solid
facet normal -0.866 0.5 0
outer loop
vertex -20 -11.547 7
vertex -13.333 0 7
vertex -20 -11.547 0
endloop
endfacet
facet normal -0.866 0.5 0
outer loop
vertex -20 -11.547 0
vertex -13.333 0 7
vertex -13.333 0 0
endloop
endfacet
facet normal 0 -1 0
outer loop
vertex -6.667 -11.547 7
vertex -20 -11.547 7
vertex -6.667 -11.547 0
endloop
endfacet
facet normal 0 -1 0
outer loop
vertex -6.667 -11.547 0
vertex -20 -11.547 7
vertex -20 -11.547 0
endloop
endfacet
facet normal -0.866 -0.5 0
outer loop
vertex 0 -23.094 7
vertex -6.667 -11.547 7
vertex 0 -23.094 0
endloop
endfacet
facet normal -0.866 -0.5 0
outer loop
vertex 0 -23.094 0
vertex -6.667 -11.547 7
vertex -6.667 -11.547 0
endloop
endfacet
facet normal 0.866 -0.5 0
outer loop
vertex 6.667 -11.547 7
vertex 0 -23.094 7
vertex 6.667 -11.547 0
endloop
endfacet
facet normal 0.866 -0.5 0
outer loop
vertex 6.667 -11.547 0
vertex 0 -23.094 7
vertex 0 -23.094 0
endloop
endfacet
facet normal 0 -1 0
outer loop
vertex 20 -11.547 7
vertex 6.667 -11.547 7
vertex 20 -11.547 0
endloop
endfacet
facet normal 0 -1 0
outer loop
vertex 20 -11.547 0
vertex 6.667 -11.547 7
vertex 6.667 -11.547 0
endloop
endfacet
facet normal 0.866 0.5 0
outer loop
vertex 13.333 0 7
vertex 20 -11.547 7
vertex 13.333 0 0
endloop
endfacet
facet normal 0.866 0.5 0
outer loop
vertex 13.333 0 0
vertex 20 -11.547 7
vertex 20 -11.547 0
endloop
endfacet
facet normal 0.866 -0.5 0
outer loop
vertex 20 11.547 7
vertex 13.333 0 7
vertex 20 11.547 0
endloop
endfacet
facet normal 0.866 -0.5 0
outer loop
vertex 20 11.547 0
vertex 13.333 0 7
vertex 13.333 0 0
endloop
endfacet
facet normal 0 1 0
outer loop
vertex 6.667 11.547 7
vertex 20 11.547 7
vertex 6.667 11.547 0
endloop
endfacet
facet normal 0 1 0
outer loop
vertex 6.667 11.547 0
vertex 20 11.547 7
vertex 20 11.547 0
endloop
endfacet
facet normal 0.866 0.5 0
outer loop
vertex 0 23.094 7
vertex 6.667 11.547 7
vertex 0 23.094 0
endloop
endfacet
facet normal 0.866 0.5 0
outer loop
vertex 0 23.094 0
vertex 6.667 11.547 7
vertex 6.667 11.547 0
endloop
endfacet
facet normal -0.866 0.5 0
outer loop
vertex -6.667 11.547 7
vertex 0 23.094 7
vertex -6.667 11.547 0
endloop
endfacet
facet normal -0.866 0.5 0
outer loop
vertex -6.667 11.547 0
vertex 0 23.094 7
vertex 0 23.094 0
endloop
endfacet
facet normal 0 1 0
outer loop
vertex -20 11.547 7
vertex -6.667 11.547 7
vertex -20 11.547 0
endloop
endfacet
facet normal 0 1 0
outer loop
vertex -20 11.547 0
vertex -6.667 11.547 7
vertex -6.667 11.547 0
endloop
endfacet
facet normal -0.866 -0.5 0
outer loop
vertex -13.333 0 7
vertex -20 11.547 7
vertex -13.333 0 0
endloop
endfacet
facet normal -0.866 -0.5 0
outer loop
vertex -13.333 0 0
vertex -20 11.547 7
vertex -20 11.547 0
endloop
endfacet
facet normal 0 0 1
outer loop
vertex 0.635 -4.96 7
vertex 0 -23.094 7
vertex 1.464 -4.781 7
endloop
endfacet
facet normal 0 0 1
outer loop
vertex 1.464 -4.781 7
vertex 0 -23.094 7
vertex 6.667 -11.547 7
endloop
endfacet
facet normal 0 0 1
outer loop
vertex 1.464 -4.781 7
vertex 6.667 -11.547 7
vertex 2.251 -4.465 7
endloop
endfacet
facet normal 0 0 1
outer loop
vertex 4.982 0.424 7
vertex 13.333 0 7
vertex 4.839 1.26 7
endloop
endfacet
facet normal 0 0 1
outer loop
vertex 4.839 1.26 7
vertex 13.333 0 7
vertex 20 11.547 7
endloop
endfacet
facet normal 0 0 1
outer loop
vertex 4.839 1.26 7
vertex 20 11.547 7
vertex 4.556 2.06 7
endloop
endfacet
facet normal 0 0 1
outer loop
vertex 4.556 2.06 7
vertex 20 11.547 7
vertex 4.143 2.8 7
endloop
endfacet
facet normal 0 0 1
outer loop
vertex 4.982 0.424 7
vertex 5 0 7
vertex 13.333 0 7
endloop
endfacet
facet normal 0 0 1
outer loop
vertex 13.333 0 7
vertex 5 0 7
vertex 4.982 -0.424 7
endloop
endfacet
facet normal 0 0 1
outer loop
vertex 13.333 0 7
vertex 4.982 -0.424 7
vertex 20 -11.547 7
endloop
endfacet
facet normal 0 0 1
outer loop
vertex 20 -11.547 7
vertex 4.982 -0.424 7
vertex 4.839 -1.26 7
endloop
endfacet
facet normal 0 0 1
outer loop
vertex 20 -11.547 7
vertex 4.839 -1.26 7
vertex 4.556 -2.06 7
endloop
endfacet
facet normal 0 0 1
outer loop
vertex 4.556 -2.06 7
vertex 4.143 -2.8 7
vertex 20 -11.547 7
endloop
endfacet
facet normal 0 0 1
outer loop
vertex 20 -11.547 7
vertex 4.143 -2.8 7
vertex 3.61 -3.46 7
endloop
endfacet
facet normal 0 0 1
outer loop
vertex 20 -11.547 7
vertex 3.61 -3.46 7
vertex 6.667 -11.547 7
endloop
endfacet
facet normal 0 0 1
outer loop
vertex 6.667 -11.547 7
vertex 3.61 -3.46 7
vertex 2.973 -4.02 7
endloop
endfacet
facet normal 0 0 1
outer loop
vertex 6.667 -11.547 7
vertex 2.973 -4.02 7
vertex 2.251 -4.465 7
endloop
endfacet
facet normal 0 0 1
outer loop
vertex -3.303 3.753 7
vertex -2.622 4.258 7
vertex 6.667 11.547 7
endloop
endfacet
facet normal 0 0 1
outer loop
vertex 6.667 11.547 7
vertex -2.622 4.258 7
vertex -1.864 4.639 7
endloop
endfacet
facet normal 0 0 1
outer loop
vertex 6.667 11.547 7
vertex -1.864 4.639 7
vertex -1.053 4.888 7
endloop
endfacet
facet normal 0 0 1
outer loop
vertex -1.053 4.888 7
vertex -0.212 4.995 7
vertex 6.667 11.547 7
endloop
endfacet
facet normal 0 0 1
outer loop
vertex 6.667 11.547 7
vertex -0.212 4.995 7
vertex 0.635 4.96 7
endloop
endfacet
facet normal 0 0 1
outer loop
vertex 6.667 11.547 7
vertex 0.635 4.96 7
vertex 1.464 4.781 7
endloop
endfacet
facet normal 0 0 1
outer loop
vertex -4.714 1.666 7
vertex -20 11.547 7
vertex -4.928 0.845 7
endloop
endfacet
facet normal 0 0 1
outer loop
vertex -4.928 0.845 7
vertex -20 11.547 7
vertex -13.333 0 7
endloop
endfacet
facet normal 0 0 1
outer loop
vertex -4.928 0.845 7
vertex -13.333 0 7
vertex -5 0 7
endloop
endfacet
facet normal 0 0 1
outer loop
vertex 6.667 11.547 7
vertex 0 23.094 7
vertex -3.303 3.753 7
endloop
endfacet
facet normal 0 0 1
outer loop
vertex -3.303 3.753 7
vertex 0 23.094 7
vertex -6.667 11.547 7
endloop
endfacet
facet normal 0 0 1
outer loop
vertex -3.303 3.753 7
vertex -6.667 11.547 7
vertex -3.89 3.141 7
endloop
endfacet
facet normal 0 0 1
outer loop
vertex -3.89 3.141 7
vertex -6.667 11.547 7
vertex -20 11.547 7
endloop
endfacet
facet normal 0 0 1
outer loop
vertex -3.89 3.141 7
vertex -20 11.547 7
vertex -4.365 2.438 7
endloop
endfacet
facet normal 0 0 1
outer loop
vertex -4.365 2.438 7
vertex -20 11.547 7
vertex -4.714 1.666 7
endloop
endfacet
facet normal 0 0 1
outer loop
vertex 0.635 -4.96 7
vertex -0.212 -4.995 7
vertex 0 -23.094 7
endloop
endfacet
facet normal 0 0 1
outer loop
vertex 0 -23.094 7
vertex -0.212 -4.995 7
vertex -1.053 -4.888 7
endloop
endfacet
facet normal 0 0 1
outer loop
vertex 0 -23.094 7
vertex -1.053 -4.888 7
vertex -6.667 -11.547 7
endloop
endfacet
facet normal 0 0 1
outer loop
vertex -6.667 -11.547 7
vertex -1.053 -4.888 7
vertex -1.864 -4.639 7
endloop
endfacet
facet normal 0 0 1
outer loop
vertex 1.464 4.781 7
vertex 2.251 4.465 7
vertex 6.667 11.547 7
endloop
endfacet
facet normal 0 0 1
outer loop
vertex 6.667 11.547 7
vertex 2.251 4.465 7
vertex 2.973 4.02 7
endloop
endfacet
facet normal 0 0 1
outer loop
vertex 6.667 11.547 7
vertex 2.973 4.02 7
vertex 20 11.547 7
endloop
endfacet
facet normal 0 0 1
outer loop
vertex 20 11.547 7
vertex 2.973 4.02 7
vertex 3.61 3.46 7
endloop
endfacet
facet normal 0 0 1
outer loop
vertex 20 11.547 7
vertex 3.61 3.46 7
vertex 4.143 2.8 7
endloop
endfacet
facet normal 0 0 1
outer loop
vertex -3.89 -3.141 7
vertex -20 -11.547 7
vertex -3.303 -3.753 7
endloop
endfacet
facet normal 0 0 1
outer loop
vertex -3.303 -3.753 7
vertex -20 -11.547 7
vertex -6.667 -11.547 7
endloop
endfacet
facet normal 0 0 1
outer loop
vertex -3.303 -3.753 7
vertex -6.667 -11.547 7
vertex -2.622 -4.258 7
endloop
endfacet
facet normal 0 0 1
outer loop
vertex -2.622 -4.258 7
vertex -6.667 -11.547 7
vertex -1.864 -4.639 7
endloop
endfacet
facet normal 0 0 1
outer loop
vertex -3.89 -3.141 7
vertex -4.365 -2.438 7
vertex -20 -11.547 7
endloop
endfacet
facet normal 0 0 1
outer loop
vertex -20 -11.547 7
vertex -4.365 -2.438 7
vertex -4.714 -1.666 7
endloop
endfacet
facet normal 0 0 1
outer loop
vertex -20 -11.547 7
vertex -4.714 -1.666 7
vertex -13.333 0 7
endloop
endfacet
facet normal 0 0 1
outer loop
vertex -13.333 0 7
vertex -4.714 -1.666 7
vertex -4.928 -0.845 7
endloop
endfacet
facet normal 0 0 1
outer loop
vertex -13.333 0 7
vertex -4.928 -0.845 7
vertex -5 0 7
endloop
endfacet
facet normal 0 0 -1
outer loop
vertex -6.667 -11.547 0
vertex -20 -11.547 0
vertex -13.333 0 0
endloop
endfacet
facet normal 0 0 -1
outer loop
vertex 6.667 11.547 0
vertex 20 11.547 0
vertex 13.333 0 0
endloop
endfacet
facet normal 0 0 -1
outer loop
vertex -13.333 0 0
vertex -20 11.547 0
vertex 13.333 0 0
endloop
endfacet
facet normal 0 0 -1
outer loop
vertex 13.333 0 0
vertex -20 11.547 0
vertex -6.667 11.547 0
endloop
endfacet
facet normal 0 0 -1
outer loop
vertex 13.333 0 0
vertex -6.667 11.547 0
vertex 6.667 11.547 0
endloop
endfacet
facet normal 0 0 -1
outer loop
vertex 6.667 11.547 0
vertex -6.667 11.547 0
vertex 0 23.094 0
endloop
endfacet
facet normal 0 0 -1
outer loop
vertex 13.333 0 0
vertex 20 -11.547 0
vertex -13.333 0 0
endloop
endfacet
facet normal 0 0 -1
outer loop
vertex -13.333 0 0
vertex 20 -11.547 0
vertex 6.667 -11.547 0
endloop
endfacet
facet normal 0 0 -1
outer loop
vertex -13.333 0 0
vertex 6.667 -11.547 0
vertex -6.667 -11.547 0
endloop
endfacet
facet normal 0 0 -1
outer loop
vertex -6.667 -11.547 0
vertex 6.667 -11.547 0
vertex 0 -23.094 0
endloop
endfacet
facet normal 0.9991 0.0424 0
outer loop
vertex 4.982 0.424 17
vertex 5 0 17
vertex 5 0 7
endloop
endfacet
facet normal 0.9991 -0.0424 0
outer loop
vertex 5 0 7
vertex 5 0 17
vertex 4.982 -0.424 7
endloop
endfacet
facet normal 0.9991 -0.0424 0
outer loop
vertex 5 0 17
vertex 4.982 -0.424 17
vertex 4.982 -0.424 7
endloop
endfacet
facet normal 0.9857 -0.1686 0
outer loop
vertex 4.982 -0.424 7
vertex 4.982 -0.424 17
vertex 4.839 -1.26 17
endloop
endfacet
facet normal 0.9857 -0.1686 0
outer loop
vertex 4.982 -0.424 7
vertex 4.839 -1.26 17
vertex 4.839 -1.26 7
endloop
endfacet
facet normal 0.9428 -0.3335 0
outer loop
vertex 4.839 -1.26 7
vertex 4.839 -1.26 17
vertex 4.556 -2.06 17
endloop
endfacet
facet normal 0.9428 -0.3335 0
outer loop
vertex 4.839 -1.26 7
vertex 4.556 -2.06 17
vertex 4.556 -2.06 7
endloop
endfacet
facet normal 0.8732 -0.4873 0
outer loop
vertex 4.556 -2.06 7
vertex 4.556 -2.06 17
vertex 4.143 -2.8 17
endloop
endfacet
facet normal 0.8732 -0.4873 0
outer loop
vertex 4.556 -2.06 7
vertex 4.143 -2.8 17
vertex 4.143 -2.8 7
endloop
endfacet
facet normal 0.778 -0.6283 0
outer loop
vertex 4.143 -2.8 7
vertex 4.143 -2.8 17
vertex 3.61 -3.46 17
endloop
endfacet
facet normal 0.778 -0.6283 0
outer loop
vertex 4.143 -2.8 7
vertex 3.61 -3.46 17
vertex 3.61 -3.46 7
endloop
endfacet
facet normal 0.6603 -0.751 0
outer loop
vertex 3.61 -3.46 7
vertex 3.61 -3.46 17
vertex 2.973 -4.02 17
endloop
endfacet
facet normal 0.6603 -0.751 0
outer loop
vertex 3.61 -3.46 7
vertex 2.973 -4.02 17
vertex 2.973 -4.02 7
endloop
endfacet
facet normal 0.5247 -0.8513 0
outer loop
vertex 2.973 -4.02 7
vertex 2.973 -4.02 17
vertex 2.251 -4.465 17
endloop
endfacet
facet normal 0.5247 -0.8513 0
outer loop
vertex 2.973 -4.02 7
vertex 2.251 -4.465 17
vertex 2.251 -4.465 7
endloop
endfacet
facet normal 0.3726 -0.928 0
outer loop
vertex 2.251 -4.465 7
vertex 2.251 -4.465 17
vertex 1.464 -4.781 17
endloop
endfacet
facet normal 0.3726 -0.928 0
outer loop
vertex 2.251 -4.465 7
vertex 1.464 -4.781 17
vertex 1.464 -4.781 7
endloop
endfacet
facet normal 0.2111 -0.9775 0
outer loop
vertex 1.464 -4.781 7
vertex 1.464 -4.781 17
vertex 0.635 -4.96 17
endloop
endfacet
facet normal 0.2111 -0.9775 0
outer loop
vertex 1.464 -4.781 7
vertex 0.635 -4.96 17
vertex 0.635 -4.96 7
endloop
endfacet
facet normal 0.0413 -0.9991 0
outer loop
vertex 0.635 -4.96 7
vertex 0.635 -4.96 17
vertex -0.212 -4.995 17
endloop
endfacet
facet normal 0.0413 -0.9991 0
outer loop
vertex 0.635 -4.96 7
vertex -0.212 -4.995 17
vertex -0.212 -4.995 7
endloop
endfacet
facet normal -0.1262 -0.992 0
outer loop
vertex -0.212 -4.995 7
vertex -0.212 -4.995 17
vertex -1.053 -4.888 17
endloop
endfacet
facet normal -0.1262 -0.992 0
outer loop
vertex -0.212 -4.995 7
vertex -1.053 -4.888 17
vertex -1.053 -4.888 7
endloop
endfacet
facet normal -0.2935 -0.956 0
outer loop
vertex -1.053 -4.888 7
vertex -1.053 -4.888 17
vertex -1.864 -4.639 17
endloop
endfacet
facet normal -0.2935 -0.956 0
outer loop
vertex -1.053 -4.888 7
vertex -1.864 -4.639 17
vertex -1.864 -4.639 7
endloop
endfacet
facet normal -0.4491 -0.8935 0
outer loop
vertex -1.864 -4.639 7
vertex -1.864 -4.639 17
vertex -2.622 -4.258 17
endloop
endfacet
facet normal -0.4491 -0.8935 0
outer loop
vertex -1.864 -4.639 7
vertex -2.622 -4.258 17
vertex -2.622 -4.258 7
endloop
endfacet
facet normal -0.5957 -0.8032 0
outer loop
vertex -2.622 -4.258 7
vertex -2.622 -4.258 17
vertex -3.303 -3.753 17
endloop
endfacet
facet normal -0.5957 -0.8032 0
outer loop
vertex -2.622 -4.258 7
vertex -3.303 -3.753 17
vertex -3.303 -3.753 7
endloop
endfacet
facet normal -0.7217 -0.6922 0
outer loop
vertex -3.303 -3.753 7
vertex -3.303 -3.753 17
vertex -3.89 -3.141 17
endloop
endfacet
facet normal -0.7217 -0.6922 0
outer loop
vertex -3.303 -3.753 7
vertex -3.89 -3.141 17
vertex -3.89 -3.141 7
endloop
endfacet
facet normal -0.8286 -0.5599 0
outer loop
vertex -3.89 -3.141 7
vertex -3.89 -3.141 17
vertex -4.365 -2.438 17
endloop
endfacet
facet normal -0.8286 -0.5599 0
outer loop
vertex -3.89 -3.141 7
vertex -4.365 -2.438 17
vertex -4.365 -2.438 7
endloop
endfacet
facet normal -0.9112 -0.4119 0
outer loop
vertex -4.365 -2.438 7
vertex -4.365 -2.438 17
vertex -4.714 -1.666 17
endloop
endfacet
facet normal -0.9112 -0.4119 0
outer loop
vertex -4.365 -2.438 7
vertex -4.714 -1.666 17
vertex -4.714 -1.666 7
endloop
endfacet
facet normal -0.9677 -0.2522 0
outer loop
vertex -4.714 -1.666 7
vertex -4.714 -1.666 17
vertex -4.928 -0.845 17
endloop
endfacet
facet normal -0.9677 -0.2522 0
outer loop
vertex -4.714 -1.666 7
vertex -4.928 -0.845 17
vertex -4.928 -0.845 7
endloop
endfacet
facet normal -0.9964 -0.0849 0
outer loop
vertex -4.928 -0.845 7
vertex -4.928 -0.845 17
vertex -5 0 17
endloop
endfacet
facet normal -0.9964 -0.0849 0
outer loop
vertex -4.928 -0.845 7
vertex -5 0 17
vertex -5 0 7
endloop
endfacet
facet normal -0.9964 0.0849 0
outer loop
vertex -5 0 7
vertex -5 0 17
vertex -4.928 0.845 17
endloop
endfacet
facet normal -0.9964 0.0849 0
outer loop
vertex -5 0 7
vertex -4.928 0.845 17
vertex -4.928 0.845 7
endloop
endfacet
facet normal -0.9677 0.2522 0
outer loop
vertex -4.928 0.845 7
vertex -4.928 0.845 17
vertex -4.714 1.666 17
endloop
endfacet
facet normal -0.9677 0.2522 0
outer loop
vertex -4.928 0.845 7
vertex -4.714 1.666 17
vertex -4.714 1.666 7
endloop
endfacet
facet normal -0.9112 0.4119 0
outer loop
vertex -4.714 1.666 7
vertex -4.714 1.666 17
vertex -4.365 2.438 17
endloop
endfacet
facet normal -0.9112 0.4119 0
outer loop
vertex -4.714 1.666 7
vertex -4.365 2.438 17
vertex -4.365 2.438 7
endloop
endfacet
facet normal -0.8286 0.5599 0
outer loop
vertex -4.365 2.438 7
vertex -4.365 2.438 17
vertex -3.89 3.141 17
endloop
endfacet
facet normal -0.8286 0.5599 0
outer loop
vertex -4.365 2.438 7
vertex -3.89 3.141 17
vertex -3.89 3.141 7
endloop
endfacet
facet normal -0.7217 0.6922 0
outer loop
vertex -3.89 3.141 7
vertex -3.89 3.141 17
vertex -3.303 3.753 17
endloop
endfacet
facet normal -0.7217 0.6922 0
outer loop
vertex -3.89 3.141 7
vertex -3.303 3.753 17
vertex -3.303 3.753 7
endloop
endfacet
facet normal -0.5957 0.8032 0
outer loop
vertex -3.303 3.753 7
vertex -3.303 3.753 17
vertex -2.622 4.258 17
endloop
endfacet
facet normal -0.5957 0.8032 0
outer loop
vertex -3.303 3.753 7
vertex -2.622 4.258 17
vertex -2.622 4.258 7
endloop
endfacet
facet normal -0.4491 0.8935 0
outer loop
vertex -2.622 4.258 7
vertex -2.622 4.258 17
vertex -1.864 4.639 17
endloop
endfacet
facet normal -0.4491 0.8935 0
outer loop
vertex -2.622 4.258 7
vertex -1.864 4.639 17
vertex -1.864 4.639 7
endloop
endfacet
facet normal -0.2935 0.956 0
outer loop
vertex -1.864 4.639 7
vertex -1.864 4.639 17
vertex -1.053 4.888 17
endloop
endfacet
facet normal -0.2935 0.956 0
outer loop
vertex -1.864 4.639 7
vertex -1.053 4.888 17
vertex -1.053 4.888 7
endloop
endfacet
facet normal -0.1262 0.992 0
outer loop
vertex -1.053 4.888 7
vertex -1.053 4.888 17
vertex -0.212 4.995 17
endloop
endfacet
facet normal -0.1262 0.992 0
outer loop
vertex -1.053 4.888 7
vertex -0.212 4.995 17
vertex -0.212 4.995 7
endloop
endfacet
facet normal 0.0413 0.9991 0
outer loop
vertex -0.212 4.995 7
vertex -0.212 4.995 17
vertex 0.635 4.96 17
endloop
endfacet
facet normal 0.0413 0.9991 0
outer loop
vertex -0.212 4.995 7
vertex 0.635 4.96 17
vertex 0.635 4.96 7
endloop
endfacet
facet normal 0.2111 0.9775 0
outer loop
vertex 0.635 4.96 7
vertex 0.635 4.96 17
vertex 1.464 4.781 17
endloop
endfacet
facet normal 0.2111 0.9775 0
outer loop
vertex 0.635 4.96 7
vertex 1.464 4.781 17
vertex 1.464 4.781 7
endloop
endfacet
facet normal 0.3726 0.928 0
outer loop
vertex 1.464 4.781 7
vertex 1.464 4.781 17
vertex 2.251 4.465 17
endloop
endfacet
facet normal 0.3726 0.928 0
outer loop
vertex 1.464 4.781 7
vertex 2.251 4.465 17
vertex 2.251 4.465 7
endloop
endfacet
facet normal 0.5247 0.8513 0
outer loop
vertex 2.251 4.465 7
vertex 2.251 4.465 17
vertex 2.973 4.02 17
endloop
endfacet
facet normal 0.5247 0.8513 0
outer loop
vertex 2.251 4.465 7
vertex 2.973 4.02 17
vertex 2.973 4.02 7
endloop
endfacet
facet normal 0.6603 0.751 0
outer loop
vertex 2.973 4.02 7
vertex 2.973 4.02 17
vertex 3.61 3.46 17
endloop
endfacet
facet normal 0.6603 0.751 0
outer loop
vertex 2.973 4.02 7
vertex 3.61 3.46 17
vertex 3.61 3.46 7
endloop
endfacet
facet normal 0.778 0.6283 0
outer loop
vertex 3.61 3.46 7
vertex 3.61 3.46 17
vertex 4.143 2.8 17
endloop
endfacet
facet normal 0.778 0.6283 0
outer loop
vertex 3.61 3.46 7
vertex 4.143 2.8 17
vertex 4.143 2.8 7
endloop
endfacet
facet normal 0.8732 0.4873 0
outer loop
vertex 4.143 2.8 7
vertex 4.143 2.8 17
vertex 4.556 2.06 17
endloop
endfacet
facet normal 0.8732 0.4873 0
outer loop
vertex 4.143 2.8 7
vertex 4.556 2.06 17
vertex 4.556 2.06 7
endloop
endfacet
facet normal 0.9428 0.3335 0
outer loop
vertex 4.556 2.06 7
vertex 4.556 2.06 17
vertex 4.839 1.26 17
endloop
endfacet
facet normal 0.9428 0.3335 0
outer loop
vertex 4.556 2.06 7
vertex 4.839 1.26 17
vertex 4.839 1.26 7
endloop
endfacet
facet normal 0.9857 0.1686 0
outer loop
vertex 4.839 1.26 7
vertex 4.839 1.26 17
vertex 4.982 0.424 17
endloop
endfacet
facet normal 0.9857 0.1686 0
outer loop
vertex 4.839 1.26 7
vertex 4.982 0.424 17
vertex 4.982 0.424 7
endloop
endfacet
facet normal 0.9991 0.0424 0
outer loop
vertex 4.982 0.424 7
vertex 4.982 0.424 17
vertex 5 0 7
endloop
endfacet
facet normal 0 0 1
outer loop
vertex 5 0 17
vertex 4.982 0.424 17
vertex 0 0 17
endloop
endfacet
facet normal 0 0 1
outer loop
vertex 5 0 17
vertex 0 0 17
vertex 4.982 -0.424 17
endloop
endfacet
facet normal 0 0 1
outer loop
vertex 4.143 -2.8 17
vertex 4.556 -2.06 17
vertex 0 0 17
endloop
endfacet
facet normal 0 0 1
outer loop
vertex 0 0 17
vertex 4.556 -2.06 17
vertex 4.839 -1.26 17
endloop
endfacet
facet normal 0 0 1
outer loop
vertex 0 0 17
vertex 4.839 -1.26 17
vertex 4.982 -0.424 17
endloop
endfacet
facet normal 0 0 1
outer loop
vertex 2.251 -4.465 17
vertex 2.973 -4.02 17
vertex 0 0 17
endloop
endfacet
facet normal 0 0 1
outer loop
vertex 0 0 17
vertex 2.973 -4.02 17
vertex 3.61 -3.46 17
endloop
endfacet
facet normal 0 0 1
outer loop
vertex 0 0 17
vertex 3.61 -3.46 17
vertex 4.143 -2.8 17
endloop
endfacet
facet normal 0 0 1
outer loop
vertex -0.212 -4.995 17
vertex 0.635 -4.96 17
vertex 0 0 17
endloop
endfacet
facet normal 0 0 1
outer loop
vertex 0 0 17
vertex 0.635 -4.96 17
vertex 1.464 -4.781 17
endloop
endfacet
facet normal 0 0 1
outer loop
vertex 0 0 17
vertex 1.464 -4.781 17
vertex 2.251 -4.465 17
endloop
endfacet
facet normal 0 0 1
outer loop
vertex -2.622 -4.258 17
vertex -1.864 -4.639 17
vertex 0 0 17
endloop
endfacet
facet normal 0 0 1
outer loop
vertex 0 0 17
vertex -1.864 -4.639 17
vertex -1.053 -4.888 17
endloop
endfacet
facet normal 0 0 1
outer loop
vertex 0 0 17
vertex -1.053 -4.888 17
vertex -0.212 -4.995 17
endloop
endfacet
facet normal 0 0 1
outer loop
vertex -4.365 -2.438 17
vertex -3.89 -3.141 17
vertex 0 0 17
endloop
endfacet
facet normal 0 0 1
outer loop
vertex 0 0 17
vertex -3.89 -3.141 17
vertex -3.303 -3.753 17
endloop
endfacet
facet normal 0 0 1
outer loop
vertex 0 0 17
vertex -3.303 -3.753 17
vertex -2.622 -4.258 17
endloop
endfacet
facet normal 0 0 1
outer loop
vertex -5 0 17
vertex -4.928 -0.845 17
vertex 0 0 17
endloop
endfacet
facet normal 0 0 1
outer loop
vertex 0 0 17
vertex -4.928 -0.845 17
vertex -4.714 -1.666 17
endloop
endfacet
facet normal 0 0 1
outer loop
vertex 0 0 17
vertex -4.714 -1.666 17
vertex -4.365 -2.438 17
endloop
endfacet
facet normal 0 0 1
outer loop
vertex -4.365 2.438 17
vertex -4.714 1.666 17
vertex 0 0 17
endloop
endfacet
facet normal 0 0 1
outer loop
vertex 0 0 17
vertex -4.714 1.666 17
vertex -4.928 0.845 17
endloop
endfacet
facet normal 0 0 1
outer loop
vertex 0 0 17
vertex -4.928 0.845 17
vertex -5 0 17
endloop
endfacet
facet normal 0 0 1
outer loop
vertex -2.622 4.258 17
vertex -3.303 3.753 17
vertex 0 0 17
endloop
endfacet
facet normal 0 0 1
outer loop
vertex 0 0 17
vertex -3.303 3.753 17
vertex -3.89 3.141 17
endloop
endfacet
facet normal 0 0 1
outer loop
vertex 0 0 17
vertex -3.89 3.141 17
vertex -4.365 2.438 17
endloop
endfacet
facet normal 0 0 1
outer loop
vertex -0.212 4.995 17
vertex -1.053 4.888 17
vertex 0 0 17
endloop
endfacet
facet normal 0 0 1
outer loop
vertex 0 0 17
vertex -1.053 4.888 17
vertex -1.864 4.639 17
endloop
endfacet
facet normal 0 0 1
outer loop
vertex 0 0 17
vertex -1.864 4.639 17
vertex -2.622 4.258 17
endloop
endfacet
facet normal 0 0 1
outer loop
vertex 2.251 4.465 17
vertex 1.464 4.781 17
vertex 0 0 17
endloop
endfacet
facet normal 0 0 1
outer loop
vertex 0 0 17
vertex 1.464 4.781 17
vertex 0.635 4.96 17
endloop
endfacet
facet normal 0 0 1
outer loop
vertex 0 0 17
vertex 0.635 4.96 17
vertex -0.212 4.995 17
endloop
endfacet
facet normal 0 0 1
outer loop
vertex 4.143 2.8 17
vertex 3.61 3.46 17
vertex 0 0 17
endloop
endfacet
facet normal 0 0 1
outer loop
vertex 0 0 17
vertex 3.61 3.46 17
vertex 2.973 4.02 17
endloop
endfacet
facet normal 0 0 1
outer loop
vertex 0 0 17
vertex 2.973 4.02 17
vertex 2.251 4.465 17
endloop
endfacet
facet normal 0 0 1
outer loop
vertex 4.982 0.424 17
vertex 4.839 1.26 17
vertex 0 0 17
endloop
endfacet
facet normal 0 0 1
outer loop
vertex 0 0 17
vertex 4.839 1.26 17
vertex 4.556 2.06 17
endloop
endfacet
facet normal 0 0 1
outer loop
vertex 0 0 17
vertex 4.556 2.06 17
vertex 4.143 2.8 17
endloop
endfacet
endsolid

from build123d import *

# Parameters (mm, degrees)
BOSS_EXTRU_1_DEPTH = 7
ESQUISSE2_R        = 5
BOSS_EXTRU_2_DEPTH = 10


with BuildPart() as part:
    # Esquisse1 → Boss.-Extru.1 (new body)
    with BuildSketch(Plane.XY):
        Polygon((-20, 11.547005384), (-6.666666667, 11.547005384), (0, 23.094010768), (6.666666667, 11.547005384), (20, 11.547005384), (13.333333333, 0), (20, -11.547005384), (6.666666667, -11.547005384), (0, -23.094010768), (-6.666666667, -11.547005384), (-20, -11.547005384), (-13.333333333, 0), align=None)
    extrude(amount=BOSS_EXTRU_1_DEPTH)

    # Esquisse2 → Boss.-Extru.2 (add)
    with BuildSketch(Plane.XY.offset(7)):
        Circle(ESQUISSE2_R)
    extrude(amount=BOSS_EXTRU_2_DEPTH)


solid = part.part
